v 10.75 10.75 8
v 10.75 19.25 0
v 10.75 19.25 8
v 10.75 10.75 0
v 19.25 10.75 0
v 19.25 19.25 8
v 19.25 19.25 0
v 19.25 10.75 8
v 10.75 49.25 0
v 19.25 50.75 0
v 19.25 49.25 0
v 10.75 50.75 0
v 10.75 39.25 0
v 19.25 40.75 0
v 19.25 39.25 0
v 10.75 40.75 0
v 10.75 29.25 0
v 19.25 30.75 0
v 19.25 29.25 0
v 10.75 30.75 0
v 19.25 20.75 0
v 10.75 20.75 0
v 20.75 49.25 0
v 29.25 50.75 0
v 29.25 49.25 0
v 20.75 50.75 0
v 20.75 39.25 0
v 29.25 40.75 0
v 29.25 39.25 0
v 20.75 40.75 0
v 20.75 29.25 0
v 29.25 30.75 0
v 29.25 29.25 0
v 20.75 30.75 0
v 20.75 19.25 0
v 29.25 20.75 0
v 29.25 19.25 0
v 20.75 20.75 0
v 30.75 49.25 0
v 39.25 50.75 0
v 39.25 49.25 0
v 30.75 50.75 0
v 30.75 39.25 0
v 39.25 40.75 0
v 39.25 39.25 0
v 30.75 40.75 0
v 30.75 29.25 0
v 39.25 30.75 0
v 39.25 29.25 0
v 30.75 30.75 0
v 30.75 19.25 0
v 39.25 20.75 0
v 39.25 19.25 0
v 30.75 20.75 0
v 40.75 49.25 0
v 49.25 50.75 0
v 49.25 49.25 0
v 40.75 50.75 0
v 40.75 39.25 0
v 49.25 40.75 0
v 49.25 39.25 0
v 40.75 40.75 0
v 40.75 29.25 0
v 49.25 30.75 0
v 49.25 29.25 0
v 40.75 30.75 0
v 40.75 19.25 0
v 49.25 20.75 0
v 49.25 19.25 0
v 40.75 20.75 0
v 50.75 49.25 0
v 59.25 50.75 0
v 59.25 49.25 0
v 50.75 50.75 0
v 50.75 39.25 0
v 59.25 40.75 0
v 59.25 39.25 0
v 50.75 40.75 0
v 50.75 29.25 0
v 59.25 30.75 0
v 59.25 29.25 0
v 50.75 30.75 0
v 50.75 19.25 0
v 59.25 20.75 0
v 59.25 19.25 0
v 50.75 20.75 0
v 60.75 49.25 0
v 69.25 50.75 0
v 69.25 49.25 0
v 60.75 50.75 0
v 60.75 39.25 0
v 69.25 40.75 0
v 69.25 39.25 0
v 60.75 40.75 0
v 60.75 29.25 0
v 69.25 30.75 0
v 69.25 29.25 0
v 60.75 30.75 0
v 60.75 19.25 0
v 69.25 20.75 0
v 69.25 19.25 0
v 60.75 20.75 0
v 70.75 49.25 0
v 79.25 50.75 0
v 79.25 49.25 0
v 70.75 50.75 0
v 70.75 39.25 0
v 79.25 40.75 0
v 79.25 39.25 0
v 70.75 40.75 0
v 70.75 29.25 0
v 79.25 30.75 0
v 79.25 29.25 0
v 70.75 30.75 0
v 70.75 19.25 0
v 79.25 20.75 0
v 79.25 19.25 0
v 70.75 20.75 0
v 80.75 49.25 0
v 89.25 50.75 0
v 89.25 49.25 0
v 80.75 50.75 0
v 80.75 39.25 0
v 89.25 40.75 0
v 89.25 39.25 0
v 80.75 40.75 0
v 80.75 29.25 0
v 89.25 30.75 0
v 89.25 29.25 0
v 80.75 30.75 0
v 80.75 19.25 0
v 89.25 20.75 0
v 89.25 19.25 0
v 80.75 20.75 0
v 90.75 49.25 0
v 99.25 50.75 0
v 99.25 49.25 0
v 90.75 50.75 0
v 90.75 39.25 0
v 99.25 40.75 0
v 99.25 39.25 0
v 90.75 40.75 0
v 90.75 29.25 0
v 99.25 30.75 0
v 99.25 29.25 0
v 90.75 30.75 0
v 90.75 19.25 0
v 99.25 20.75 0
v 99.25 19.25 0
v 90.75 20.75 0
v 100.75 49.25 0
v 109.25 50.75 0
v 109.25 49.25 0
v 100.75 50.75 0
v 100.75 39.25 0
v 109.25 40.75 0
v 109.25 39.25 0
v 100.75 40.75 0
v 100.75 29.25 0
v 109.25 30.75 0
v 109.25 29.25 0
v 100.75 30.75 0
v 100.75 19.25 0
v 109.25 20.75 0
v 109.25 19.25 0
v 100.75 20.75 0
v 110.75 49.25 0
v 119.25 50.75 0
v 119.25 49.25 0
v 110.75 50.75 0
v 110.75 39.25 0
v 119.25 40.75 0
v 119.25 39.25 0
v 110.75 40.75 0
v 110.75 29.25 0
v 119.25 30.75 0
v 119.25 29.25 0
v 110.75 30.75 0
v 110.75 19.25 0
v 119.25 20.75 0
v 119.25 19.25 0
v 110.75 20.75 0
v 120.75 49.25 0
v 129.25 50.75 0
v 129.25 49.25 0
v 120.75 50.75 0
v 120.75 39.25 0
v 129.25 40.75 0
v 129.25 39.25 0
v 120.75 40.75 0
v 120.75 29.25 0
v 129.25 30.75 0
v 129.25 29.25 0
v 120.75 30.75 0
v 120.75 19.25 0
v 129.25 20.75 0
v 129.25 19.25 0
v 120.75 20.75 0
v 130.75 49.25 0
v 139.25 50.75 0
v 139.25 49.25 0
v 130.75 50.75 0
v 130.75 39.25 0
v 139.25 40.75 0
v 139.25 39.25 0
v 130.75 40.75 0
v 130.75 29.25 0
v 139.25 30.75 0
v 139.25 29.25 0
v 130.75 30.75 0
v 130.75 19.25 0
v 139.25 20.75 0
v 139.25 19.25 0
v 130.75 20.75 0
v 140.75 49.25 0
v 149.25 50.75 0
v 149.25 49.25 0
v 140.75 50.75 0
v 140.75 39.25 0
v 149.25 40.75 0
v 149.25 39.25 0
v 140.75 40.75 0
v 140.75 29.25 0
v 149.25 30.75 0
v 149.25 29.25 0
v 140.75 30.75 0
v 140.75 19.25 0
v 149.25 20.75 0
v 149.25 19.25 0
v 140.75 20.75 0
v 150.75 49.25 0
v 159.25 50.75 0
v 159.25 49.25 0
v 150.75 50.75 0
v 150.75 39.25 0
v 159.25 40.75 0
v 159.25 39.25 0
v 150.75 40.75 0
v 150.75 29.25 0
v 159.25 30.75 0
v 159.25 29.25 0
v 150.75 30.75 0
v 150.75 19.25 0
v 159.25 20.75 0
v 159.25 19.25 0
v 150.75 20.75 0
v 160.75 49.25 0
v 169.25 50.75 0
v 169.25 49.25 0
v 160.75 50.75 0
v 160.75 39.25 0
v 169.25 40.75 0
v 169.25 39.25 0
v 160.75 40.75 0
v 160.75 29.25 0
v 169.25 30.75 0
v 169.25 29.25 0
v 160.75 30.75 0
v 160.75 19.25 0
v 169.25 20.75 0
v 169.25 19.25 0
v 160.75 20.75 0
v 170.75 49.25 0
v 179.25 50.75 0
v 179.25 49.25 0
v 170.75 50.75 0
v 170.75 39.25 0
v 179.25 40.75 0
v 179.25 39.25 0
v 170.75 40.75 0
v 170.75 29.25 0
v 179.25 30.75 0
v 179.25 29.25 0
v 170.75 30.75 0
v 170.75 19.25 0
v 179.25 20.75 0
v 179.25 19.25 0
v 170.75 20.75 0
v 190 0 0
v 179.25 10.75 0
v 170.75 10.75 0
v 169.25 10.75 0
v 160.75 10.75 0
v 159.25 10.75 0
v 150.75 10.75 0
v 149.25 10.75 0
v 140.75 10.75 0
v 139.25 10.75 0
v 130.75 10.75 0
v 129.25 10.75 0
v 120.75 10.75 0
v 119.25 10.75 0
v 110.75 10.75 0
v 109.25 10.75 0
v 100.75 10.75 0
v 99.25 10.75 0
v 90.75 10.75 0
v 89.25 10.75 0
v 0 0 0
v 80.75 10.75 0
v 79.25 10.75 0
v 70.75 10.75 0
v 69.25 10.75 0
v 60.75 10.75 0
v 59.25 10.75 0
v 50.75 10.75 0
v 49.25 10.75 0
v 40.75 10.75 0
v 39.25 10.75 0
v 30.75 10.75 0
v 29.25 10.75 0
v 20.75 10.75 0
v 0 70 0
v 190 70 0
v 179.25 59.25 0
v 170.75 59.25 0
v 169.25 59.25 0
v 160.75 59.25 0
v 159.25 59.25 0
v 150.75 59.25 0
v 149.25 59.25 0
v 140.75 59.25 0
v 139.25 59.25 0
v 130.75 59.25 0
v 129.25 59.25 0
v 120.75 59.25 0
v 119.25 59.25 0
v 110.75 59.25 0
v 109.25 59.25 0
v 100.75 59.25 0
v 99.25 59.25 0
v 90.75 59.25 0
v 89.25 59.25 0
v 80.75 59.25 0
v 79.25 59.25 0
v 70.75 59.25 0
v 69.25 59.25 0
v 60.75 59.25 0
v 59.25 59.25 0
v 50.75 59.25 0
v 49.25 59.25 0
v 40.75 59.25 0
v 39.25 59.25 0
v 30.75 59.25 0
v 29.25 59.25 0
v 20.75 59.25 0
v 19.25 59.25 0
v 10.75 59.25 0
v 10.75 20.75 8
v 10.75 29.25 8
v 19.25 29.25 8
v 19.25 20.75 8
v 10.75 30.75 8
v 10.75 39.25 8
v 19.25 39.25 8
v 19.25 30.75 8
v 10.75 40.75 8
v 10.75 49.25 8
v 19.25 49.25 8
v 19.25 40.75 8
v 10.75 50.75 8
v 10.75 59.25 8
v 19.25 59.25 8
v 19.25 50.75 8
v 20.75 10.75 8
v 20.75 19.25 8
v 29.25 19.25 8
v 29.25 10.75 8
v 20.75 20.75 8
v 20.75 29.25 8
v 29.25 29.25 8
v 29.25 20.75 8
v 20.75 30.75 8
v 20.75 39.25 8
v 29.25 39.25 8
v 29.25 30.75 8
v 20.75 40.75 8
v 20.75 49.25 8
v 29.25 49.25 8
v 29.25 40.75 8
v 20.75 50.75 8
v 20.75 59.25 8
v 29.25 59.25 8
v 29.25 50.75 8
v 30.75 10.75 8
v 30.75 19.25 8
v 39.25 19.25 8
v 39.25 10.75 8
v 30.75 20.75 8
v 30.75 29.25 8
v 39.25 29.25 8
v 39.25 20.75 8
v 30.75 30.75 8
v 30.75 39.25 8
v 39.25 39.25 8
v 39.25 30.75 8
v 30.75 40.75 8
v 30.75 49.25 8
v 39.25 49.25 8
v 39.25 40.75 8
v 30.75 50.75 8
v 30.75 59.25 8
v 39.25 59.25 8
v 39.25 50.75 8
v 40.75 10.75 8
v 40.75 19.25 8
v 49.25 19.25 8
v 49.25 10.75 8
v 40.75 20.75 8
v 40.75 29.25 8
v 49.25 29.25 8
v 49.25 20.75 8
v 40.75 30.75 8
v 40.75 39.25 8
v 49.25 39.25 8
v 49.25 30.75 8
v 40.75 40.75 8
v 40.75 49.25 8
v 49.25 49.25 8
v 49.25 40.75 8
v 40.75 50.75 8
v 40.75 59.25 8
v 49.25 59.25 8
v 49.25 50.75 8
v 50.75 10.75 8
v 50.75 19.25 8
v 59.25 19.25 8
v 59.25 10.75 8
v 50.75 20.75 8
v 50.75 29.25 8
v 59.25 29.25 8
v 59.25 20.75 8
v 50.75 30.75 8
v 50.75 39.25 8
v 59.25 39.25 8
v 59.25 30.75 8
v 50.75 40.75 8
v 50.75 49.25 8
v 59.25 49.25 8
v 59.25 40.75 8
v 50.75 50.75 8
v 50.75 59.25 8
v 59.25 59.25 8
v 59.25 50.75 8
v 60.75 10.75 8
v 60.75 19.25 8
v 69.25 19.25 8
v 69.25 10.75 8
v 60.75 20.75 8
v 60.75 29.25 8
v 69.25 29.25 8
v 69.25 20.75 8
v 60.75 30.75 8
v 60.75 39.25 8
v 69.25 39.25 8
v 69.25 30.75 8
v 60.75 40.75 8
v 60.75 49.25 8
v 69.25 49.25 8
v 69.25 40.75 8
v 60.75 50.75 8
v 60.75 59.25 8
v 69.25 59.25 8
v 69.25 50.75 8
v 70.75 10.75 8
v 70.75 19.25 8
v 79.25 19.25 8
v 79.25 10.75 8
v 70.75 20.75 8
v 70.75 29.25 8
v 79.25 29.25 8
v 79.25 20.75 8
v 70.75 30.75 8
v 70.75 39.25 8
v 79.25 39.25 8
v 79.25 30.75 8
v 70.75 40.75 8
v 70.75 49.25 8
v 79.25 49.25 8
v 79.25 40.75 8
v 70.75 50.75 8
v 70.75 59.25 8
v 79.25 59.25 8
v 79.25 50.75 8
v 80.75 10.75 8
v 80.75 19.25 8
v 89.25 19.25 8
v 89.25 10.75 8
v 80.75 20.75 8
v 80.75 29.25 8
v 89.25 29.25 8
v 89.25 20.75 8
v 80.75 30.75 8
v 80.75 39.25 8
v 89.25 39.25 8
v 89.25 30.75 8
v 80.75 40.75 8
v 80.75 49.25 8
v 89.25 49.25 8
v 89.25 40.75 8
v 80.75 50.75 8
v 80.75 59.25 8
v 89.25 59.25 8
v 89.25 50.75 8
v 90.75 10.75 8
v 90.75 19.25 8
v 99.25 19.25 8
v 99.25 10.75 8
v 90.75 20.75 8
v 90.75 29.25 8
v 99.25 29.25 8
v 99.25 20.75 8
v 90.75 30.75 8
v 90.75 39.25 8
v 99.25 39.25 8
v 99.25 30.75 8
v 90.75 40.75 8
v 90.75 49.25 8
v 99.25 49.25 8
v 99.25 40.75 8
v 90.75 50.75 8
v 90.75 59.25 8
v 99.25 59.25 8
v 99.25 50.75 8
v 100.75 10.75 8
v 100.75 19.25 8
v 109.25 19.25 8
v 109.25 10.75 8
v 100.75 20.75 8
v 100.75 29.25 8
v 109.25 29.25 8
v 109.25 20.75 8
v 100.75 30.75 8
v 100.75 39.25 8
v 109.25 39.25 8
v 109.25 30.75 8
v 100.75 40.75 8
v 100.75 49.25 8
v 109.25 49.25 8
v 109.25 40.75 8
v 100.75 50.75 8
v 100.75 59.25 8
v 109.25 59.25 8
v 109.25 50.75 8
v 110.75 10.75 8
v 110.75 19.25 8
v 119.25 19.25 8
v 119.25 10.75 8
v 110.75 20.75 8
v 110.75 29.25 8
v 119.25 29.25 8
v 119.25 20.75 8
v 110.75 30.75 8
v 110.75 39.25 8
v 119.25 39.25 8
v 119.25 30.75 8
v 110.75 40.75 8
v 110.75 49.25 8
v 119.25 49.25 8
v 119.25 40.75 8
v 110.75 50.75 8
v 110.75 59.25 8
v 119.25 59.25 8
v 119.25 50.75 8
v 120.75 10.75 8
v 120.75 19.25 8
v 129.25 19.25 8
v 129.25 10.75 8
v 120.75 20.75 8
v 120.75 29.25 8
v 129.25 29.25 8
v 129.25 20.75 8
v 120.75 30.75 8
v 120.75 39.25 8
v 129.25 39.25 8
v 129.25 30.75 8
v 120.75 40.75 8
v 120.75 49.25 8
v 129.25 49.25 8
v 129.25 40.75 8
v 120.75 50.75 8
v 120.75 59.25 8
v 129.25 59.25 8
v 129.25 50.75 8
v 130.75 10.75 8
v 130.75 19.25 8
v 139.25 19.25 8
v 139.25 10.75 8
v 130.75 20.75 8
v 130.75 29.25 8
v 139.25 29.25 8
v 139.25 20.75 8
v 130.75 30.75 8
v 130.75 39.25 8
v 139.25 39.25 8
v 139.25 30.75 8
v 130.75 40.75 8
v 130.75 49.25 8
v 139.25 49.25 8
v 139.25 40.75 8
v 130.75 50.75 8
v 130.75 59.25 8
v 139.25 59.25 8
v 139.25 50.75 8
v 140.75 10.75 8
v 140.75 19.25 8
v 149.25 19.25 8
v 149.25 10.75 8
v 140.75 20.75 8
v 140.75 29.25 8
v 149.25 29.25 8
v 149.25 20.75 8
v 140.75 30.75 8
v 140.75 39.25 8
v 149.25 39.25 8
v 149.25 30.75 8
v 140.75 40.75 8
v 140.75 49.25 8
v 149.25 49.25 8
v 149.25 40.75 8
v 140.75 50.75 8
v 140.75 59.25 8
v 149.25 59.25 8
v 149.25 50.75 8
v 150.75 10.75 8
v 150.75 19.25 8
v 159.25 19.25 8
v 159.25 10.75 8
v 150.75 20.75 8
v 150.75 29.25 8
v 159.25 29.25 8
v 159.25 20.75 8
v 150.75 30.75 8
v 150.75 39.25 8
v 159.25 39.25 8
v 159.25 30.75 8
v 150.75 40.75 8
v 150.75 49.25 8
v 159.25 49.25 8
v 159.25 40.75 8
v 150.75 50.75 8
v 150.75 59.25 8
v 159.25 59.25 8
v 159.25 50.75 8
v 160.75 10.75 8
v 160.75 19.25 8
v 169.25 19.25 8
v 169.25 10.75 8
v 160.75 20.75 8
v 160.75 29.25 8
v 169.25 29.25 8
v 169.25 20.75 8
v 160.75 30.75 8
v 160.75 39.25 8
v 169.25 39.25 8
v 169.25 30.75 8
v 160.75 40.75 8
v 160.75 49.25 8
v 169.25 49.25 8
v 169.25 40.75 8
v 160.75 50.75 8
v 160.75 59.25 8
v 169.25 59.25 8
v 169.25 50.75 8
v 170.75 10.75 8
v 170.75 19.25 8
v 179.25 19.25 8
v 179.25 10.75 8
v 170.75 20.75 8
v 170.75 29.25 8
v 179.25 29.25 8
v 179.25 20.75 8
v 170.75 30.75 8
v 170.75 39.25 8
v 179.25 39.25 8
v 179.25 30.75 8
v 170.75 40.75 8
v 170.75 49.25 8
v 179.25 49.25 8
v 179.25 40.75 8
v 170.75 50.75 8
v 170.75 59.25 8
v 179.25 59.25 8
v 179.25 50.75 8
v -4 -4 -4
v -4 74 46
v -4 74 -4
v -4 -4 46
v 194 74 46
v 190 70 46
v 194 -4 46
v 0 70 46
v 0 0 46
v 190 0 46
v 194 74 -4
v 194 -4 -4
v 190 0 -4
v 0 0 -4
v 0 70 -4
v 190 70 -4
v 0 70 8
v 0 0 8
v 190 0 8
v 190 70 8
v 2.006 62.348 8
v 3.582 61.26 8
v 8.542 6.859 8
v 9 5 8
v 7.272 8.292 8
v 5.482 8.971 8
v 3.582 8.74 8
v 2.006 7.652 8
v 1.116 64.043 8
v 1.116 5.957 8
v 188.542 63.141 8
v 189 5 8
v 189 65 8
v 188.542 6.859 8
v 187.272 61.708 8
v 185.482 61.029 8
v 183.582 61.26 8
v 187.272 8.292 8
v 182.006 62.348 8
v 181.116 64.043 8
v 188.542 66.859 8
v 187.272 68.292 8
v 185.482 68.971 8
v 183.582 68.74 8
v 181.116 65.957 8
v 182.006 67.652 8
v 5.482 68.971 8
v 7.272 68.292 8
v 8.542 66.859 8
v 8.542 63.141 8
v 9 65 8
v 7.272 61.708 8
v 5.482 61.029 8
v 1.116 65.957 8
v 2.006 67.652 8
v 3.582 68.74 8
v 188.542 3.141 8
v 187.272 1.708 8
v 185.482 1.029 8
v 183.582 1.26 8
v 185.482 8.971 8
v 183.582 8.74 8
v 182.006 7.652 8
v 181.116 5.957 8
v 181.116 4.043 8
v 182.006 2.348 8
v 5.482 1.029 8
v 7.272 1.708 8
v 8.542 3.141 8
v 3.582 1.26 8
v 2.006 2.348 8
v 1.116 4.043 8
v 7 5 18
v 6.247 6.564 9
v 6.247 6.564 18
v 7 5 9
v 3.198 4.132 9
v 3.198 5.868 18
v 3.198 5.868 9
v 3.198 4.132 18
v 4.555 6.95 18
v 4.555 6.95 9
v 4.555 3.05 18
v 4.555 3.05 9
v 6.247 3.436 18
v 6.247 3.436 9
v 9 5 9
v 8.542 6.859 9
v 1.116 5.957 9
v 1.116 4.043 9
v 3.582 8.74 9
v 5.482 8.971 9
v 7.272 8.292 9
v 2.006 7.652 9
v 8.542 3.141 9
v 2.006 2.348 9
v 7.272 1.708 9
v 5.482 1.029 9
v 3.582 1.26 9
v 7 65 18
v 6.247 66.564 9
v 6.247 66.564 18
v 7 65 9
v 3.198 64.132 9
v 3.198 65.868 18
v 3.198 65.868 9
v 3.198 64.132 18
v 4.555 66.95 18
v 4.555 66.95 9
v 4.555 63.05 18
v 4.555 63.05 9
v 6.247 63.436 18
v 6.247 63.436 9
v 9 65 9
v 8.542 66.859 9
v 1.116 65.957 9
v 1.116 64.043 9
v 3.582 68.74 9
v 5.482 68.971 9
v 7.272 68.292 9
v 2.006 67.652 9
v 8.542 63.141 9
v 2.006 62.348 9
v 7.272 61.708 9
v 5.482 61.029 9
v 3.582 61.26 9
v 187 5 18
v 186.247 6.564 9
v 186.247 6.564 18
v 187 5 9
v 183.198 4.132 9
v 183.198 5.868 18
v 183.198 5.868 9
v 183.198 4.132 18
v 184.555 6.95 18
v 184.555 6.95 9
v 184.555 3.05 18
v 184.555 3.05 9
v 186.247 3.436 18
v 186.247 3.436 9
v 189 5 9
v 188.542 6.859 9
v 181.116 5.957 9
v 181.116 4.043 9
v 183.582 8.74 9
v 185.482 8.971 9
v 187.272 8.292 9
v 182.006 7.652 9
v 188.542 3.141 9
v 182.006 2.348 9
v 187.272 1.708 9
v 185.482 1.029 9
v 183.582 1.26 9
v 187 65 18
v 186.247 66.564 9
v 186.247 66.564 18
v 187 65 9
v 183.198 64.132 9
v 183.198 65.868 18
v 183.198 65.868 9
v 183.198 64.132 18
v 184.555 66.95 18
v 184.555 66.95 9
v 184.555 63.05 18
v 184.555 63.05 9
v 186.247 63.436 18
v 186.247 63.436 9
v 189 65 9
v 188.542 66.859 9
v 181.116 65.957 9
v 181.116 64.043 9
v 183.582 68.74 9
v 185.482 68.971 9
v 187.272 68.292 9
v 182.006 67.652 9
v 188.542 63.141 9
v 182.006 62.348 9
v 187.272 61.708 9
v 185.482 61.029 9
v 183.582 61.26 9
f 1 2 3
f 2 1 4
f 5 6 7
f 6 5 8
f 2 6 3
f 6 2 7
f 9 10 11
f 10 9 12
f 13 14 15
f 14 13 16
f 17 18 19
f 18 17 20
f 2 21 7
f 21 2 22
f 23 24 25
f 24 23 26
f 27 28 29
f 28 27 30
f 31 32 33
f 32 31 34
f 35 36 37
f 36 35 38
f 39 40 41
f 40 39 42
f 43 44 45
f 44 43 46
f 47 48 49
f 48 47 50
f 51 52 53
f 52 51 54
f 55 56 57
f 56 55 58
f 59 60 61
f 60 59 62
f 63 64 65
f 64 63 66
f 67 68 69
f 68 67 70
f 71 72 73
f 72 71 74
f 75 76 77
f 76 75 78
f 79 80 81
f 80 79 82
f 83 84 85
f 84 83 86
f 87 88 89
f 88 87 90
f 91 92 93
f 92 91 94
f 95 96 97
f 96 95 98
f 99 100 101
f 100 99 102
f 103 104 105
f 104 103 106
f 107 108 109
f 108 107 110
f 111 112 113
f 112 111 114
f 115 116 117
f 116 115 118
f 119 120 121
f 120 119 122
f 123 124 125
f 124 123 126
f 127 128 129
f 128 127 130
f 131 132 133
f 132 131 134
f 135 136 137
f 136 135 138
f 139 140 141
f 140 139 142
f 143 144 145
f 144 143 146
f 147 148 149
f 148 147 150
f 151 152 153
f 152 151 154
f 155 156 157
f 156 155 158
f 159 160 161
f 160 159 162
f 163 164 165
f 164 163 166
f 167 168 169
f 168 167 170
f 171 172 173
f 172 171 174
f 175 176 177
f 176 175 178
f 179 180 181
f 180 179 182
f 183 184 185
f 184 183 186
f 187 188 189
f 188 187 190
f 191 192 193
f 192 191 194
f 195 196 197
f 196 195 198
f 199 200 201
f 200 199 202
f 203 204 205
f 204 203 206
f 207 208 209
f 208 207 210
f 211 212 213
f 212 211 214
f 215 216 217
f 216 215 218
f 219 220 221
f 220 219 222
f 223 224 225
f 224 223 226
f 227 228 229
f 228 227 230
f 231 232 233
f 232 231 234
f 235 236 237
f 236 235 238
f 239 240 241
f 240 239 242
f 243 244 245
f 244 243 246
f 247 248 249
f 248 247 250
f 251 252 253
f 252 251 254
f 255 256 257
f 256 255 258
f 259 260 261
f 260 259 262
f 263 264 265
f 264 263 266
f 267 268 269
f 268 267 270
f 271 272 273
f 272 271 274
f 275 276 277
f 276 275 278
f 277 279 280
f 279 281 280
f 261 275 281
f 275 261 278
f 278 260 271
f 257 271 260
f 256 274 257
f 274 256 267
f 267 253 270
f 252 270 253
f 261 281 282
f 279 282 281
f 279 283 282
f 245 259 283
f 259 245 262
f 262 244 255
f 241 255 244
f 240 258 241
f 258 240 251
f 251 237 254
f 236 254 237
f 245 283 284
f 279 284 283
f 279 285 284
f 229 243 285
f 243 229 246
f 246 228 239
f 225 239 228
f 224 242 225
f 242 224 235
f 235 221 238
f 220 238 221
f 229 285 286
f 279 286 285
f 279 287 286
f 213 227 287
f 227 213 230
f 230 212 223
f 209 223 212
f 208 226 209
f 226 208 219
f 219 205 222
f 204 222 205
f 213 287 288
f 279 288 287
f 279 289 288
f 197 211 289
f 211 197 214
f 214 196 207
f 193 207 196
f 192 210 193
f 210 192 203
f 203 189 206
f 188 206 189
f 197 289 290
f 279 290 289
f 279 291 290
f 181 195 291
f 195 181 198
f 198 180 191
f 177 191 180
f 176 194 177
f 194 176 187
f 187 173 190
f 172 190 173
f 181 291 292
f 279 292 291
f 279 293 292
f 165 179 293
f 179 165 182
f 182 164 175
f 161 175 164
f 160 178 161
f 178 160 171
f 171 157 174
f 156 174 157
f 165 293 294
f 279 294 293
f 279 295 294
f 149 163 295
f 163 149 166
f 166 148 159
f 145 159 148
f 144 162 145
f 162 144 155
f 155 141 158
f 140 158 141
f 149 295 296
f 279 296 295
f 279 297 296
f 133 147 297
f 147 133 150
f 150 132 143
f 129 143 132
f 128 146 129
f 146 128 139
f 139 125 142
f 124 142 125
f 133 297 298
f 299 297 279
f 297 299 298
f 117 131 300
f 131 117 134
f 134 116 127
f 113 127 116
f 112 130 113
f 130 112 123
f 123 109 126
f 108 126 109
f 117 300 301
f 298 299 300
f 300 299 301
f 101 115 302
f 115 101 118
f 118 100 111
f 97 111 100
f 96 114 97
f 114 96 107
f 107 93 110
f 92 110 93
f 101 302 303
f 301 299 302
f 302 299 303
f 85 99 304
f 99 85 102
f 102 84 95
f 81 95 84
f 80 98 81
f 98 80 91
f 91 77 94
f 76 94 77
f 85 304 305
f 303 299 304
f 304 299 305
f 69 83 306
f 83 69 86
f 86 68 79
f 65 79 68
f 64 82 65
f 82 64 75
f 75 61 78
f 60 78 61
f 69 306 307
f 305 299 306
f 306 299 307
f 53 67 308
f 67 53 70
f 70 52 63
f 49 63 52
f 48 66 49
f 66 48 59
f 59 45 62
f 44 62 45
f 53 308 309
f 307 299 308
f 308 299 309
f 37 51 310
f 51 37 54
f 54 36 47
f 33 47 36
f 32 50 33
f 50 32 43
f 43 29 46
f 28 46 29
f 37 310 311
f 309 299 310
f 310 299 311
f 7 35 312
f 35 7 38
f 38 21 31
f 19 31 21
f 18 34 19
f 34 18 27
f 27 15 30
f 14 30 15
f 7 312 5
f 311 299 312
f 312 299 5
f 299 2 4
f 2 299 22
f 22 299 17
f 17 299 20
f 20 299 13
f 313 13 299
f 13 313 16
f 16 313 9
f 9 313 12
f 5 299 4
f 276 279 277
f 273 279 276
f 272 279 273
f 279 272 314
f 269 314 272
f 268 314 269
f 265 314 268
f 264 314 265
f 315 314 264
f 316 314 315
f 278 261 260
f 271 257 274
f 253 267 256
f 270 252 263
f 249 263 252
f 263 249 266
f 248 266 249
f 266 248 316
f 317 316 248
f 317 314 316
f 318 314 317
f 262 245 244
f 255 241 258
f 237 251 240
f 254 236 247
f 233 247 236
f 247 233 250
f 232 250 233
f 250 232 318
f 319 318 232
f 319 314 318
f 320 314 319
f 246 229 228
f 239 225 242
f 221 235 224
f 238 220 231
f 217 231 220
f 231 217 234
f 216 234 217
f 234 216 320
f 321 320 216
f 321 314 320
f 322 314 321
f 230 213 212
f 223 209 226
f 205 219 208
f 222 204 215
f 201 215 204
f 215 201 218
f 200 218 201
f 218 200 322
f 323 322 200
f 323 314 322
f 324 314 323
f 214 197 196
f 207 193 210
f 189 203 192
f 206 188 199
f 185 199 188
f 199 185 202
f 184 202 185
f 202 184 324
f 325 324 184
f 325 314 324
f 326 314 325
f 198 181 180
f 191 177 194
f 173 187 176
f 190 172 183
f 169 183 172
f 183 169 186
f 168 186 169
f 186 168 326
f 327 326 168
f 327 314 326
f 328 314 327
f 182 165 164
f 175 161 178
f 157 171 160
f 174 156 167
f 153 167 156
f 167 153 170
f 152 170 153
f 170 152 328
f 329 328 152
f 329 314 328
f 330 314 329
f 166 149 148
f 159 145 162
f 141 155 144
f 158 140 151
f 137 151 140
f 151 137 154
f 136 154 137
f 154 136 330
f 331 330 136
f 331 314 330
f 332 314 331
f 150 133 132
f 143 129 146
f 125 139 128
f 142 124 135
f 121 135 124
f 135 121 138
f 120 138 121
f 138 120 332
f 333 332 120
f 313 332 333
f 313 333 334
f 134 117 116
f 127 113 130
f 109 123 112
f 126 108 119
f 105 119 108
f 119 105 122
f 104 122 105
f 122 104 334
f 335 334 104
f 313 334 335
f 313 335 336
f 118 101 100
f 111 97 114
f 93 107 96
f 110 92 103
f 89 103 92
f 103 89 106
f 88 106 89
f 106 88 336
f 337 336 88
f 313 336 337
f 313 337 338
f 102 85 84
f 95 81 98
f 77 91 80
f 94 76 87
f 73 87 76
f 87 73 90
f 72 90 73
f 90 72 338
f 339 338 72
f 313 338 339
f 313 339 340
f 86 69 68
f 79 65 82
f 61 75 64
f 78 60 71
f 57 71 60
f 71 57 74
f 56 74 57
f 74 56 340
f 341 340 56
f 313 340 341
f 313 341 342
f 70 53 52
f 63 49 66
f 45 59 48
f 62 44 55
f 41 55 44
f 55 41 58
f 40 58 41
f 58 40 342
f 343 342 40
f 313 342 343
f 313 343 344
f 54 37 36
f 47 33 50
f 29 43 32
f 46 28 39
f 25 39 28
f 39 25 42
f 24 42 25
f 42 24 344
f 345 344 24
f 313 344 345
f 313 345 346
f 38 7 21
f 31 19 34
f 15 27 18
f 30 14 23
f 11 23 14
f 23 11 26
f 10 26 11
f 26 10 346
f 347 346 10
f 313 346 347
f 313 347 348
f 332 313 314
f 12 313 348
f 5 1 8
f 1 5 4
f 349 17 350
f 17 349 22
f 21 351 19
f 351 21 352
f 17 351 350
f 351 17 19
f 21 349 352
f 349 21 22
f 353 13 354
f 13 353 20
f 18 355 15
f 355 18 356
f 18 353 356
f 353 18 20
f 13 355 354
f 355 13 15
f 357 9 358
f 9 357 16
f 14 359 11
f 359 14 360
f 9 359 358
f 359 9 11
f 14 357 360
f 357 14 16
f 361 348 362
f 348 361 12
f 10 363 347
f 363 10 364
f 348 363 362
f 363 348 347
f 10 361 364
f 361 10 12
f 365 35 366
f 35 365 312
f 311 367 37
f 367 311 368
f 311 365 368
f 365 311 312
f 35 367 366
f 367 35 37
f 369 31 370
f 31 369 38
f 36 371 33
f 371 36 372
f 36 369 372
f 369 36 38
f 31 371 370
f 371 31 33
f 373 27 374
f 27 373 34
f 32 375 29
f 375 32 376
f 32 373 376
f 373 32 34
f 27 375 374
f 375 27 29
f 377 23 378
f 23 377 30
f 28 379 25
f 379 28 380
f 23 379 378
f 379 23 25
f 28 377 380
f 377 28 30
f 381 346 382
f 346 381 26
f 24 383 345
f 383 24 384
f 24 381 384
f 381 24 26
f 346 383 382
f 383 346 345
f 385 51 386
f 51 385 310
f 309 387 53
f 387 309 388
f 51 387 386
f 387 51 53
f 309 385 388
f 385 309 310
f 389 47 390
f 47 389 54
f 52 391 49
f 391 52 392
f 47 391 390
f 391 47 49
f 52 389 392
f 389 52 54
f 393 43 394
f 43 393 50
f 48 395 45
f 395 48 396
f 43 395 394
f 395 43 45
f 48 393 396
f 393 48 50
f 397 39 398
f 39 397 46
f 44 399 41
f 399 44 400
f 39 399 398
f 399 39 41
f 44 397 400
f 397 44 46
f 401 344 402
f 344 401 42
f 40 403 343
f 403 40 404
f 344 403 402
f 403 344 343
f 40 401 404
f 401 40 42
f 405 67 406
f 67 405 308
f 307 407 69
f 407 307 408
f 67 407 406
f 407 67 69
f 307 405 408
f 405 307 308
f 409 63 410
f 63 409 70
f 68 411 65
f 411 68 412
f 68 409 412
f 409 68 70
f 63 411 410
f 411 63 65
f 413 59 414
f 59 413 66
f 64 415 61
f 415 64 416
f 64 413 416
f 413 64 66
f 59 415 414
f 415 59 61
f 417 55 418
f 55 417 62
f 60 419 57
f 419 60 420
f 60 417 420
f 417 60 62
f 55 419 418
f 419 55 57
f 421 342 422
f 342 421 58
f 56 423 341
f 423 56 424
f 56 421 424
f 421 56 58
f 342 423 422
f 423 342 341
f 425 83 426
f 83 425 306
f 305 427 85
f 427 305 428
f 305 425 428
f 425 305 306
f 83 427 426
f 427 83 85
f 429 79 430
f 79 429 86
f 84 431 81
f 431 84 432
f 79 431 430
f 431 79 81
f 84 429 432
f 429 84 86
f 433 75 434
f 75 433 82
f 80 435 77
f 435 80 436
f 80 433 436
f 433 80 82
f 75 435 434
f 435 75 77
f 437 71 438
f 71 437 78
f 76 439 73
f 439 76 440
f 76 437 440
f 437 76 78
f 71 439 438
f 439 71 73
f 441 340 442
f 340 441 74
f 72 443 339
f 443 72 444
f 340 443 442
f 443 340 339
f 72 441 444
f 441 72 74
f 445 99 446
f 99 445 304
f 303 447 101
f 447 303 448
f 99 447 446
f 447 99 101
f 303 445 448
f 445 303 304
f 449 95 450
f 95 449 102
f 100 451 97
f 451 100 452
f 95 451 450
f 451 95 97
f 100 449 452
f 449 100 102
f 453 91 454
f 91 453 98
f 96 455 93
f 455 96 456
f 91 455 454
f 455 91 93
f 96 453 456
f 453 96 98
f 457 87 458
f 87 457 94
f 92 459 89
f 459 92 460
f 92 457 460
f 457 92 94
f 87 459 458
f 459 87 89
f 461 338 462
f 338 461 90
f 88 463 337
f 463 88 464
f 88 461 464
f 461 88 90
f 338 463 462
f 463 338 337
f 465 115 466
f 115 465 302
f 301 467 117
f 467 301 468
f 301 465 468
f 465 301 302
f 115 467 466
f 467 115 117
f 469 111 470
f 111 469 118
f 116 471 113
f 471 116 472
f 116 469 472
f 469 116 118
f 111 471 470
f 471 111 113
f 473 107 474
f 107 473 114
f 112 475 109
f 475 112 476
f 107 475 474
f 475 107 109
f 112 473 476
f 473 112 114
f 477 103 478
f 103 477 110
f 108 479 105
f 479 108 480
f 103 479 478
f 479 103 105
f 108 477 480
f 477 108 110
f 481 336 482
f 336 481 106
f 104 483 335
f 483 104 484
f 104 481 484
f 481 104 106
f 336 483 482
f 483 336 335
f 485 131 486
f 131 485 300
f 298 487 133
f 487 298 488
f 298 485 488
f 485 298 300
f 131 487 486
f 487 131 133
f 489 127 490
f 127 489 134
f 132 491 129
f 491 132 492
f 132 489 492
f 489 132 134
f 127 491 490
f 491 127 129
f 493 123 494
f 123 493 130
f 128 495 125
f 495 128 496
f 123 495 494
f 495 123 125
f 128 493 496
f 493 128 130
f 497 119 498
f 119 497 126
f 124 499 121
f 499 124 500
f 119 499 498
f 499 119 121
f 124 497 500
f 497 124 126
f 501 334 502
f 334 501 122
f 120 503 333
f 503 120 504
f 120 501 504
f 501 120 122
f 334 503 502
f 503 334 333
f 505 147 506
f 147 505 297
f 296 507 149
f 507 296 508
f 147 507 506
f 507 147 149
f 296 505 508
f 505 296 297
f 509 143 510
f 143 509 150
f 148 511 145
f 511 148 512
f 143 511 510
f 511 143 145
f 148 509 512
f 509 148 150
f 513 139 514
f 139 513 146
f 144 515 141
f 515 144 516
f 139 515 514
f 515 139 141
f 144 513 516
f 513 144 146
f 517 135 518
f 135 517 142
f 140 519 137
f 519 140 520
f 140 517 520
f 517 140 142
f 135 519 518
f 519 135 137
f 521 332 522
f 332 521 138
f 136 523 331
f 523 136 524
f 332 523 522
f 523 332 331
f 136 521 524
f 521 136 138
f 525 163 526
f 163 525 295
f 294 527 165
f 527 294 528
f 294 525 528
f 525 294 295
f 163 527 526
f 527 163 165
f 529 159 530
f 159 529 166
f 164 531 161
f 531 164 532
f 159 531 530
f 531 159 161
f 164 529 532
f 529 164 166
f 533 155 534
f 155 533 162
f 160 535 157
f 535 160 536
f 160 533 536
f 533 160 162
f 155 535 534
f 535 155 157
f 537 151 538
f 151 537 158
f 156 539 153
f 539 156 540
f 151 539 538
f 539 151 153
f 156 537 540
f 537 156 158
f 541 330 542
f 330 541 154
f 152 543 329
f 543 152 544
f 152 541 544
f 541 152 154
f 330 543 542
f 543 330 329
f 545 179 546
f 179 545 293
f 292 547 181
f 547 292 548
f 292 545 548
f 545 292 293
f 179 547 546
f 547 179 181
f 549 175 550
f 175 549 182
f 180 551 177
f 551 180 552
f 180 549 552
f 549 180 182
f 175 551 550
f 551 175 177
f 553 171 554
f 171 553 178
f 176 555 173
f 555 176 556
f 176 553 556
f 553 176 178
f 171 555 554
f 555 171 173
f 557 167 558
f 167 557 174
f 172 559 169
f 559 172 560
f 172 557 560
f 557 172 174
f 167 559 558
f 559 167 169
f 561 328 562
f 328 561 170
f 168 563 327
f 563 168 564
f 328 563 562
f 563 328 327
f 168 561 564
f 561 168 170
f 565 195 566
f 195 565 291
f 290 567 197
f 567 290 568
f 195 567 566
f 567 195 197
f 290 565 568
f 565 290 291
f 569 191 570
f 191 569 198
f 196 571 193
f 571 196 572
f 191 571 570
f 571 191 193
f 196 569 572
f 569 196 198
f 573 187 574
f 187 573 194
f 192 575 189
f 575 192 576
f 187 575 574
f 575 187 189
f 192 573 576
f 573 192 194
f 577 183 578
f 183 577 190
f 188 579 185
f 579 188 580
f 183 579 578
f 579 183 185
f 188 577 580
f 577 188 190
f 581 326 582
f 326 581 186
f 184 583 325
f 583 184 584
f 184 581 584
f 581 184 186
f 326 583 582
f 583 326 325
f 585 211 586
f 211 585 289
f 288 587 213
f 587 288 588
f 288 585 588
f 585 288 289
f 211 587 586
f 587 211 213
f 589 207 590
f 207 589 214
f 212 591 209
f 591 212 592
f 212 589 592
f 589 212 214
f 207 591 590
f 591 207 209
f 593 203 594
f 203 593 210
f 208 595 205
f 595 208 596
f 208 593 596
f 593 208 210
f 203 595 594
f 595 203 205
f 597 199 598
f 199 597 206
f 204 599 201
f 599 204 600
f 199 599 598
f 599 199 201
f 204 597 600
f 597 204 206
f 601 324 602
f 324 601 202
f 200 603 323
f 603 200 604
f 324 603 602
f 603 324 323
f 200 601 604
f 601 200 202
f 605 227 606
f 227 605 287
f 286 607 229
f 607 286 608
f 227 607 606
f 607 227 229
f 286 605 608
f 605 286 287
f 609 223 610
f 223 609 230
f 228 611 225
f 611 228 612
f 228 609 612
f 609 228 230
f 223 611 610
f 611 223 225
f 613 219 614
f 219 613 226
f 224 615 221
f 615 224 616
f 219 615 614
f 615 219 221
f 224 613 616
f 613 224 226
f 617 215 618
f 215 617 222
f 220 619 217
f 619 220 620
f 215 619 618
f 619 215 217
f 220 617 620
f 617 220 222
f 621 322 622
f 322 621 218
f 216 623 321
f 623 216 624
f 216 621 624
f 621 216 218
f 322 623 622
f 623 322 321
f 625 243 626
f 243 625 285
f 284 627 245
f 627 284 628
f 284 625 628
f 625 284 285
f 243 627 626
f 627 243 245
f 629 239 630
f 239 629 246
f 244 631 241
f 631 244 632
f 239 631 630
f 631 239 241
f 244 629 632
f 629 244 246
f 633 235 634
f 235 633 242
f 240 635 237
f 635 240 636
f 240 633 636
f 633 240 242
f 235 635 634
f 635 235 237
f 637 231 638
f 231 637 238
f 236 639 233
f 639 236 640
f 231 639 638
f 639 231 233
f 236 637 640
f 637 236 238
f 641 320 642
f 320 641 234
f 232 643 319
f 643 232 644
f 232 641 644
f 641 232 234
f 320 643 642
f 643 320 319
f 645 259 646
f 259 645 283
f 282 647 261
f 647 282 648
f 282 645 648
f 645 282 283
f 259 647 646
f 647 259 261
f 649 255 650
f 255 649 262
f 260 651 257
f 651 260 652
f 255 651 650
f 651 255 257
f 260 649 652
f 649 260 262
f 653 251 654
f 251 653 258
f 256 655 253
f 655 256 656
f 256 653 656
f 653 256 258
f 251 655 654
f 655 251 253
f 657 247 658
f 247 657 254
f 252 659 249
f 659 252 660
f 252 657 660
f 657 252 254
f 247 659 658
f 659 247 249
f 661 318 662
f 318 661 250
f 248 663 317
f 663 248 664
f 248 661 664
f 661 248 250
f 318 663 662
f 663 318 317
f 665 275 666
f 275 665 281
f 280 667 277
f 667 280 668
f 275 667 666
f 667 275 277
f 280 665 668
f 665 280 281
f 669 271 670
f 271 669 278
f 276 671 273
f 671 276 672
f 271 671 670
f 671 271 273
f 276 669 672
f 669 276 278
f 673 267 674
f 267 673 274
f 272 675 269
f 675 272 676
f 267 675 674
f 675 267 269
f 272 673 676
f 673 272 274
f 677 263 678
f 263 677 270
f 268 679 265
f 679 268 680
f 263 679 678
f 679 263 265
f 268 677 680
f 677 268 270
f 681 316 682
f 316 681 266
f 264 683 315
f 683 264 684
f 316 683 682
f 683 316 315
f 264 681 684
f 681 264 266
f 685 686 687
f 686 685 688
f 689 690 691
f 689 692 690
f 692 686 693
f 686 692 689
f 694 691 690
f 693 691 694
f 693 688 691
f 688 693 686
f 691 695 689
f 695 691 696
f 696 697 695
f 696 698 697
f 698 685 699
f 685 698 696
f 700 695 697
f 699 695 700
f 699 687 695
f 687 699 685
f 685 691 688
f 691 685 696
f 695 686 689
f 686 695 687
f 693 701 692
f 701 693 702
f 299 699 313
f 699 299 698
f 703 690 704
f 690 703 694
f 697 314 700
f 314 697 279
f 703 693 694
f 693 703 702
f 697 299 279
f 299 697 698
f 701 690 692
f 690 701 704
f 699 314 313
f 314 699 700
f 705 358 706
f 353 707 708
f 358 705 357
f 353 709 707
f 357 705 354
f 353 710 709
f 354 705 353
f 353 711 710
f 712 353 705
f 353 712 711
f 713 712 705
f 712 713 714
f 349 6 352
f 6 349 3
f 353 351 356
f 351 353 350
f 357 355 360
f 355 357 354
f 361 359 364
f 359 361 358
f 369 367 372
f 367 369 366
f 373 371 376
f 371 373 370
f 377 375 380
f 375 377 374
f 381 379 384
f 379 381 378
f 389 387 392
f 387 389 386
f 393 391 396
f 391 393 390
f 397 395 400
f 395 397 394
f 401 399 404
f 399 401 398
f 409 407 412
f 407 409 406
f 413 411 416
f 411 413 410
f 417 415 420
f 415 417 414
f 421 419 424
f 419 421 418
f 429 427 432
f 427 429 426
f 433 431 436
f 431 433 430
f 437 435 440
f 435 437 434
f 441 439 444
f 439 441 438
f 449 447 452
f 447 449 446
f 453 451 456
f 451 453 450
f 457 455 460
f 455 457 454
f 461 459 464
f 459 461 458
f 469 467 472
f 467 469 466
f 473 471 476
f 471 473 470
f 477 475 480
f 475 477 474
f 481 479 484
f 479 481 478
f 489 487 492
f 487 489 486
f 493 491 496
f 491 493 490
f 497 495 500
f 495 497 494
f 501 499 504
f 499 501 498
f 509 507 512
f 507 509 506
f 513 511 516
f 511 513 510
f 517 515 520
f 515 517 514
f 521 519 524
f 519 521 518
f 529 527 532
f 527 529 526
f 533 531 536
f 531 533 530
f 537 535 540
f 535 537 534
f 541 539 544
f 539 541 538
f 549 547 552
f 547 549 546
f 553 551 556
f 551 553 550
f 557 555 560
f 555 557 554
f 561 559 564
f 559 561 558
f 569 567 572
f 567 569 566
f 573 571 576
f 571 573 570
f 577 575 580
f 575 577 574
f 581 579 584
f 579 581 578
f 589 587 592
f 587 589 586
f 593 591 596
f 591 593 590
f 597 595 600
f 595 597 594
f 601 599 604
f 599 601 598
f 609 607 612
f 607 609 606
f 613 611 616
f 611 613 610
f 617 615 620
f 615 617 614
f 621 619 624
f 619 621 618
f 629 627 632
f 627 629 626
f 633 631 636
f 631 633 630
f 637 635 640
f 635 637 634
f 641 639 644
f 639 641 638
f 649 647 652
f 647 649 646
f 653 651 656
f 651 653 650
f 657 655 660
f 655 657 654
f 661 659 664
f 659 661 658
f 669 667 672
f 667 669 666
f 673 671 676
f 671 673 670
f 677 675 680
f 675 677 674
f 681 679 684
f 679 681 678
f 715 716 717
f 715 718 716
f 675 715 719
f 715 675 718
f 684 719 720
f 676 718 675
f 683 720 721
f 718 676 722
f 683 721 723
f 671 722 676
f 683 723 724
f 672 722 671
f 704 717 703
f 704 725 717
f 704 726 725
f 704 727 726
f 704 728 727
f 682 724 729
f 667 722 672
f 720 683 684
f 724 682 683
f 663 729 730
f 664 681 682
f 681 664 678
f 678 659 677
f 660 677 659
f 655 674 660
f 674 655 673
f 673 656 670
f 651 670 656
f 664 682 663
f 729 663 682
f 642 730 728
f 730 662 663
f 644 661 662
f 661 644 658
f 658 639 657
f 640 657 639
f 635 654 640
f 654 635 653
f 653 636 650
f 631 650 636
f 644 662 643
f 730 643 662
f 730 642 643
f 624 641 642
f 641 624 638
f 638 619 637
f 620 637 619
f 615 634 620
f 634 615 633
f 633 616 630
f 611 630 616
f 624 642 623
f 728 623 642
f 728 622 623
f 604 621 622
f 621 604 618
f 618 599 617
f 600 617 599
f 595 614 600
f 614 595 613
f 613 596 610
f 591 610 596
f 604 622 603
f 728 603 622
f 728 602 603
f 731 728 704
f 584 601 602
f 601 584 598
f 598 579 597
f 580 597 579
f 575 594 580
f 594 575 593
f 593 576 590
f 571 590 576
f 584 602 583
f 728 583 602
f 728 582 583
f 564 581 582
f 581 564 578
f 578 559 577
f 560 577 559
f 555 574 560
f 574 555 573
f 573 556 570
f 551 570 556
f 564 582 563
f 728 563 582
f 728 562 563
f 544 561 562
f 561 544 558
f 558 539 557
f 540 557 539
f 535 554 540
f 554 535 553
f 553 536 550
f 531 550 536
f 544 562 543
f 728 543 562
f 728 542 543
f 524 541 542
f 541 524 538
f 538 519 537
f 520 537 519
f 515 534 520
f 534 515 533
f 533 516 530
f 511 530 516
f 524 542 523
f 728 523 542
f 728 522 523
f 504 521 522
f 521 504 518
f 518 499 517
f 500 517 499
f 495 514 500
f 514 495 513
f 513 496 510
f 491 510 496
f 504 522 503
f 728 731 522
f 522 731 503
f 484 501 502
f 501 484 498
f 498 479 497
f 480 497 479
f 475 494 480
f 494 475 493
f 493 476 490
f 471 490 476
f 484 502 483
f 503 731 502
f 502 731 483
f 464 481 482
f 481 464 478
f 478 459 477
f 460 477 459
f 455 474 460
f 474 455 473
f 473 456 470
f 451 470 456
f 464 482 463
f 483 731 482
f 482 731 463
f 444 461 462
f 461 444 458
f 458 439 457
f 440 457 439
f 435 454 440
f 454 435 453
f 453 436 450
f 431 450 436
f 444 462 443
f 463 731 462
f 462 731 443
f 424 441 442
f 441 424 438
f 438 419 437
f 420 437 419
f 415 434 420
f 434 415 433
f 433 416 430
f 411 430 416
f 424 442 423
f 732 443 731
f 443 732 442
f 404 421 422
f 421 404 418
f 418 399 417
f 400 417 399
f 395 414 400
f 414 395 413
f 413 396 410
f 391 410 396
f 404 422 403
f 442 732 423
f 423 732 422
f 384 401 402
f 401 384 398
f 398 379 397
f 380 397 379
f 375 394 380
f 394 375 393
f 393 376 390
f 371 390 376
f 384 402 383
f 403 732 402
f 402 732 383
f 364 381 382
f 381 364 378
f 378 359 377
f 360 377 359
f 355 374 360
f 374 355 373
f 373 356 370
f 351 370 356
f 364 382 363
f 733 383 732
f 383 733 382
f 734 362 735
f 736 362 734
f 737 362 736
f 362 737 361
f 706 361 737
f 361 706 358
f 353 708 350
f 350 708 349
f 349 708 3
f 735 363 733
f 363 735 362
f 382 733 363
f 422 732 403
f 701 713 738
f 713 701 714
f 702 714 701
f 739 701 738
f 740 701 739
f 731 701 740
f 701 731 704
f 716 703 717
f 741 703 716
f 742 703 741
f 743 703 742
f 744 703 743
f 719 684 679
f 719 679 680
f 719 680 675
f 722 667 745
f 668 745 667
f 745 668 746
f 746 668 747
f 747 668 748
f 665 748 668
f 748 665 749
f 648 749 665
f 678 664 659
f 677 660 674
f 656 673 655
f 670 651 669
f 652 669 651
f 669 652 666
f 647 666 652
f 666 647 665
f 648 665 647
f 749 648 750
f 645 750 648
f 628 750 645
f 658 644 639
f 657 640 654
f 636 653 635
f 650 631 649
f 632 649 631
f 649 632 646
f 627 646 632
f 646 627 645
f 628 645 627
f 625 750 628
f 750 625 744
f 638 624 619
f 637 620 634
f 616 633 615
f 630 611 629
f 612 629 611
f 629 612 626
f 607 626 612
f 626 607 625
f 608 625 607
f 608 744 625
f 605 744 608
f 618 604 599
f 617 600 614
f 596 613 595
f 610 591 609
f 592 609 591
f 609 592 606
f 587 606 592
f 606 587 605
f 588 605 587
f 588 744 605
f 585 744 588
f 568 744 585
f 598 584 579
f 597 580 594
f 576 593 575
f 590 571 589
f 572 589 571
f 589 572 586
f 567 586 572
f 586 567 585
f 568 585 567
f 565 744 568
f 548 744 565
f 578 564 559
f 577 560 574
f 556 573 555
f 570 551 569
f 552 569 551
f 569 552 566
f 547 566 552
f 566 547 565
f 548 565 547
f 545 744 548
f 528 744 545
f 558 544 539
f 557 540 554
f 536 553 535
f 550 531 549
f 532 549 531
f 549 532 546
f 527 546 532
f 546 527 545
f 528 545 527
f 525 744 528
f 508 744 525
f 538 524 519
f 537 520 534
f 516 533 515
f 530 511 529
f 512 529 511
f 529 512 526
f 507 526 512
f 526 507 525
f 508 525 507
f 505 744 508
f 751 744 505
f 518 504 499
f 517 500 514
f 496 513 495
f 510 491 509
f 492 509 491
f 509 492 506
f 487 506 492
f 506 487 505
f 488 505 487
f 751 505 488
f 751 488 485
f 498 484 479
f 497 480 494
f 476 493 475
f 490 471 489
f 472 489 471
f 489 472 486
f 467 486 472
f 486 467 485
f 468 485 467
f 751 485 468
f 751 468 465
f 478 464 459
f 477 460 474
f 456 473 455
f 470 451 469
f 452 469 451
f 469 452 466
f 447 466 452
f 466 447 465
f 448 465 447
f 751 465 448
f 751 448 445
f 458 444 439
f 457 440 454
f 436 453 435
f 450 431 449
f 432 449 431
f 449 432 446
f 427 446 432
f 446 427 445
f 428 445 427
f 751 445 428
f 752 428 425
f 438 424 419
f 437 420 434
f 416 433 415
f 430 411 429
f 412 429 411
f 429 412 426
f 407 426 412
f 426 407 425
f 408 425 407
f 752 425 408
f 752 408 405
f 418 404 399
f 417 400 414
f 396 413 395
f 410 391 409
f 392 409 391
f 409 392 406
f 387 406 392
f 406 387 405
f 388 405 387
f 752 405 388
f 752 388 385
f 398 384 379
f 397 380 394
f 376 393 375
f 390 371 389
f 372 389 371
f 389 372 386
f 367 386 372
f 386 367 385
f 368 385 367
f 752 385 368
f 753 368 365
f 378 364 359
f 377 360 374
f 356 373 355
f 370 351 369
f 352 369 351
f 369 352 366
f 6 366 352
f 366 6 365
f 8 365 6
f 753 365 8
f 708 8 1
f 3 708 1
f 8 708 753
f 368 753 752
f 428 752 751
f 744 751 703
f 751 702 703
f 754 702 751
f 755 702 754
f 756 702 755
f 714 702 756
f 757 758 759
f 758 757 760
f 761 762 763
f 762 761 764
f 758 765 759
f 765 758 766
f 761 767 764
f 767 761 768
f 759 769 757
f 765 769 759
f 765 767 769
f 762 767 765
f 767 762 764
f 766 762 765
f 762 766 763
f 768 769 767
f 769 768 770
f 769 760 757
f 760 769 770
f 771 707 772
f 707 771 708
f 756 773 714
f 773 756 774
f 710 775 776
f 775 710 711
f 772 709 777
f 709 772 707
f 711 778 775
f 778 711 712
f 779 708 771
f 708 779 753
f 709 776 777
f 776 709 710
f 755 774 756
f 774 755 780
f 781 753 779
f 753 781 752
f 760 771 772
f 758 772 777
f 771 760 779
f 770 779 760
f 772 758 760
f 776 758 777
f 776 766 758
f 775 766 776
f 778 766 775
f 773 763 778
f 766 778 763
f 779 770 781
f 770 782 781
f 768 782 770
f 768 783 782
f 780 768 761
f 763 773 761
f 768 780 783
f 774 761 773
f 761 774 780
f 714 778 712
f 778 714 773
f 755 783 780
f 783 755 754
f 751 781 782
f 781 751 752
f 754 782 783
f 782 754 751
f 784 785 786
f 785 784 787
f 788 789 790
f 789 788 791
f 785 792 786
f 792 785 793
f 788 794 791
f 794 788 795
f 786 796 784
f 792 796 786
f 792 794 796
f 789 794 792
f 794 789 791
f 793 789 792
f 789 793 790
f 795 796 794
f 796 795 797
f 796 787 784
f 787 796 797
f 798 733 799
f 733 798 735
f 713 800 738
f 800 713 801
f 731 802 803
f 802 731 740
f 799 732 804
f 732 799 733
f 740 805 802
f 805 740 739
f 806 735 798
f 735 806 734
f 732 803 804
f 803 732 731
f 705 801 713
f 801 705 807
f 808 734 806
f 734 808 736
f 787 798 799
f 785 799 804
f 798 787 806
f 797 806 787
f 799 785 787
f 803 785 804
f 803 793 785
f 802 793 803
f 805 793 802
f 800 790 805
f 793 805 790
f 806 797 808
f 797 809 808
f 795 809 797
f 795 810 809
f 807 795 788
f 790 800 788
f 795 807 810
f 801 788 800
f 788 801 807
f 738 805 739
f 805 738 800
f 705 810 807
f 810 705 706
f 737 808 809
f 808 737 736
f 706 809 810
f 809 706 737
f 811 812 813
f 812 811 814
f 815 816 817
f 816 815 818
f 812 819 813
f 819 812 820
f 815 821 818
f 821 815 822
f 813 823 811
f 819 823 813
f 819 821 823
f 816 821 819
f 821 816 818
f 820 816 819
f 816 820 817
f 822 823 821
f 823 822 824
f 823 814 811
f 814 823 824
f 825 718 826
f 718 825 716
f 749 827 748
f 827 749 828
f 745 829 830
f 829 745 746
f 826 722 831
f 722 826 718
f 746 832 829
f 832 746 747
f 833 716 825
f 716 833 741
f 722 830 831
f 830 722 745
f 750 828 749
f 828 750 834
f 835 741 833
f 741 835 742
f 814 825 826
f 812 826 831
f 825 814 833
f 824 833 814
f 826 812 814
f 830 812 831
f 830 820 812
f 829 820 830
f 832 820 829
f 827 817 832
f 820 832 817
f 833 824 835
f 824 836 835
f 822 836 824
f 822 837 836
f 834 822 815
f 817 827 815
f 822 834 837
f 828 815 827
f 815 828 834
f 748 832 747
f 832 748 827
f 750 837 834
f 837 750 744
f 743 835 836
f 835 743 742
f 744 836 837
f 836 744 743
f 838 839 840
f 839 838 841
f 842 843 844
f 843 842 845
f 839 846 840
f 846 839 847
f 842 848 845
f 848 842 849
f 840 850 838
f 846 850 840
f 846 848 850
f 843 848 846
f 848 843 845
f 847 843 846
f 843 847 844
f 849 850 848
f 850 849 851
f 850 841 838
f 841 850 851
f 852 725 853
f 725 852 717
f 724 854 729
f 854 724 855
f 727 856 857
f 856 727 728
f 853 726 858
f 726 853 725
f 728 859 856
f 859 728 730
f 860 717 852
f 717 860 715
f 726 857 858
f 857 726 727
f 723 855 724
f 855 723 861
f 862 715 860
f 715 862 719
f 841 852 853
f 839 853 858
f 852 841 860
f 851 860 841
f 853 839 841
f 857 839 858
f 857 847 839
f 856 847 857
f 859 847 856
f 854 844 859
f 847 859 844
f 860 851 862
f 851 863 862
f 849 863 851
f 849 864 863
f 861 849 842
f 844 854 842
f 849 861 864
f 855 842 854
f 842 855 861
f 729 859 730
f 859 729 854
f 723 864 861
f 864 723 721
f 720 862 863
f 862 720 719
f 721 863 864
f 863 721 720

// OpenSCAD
px = 190;
py = 70;
nx = 17;
ny = 5;
sl = 8.5;
cp = 10;
frth = 8;
wth = 4;

/*
translate([0,0,8]) {
difference() {
	cube([px,py,5]);
	translate([4,5,-2.5]) {
		cylinder(10,2,2);
	}
	translate([4,py-5,-2.5]) {
		cylinder(10,2,2);
	}
	translate([px-4,5,-2.5]) {
		cylinder(10,2,2);
	}
	translate([px-4,py-5,-2.5]) {
		cylinder(10,2,2);
	}
}
}
*/
translate([0,0,0]) {
	difference() {
		cube([px,py,frth]);

		for (i = [0:nx-1]) {
			for (j = [0:ny-1]) {
				translate([i*cp + (px-((nx-1)*cp+sl))/2, j*cp + (py-((ny-1)*cp+sl))/2, 0]) {
					cube(sl,sl,10);
				}
				
			}	
		}
	}

	translate([5,5,frth]) {
		union() {
			cylinder(10,2,2);
			cylinder(1,4,4);
		}
	}
	translate([5,py-5,frth]) {
		union() {
			cylinder(10,2,2);
			cylinder(1,4,4);
		}
	}
	translate([px-5,5,frth]) {
		union() {
			cylinder(10,2,2);
			cylinder(1,4,4);
		}
	}
	translate([px-5,py-5,frth]) {
		union() {
			cylinder(10,2,2);
			cylinder(1,4,4);
		}
	}

	translate([-wth,-wth,-4]) {
        difference() {
            cube([px+2*wth,py+2*wth,50]);
            translate([wth,wth,0]) {
                cube([px,py,50]);
            }
        }
    }
}
